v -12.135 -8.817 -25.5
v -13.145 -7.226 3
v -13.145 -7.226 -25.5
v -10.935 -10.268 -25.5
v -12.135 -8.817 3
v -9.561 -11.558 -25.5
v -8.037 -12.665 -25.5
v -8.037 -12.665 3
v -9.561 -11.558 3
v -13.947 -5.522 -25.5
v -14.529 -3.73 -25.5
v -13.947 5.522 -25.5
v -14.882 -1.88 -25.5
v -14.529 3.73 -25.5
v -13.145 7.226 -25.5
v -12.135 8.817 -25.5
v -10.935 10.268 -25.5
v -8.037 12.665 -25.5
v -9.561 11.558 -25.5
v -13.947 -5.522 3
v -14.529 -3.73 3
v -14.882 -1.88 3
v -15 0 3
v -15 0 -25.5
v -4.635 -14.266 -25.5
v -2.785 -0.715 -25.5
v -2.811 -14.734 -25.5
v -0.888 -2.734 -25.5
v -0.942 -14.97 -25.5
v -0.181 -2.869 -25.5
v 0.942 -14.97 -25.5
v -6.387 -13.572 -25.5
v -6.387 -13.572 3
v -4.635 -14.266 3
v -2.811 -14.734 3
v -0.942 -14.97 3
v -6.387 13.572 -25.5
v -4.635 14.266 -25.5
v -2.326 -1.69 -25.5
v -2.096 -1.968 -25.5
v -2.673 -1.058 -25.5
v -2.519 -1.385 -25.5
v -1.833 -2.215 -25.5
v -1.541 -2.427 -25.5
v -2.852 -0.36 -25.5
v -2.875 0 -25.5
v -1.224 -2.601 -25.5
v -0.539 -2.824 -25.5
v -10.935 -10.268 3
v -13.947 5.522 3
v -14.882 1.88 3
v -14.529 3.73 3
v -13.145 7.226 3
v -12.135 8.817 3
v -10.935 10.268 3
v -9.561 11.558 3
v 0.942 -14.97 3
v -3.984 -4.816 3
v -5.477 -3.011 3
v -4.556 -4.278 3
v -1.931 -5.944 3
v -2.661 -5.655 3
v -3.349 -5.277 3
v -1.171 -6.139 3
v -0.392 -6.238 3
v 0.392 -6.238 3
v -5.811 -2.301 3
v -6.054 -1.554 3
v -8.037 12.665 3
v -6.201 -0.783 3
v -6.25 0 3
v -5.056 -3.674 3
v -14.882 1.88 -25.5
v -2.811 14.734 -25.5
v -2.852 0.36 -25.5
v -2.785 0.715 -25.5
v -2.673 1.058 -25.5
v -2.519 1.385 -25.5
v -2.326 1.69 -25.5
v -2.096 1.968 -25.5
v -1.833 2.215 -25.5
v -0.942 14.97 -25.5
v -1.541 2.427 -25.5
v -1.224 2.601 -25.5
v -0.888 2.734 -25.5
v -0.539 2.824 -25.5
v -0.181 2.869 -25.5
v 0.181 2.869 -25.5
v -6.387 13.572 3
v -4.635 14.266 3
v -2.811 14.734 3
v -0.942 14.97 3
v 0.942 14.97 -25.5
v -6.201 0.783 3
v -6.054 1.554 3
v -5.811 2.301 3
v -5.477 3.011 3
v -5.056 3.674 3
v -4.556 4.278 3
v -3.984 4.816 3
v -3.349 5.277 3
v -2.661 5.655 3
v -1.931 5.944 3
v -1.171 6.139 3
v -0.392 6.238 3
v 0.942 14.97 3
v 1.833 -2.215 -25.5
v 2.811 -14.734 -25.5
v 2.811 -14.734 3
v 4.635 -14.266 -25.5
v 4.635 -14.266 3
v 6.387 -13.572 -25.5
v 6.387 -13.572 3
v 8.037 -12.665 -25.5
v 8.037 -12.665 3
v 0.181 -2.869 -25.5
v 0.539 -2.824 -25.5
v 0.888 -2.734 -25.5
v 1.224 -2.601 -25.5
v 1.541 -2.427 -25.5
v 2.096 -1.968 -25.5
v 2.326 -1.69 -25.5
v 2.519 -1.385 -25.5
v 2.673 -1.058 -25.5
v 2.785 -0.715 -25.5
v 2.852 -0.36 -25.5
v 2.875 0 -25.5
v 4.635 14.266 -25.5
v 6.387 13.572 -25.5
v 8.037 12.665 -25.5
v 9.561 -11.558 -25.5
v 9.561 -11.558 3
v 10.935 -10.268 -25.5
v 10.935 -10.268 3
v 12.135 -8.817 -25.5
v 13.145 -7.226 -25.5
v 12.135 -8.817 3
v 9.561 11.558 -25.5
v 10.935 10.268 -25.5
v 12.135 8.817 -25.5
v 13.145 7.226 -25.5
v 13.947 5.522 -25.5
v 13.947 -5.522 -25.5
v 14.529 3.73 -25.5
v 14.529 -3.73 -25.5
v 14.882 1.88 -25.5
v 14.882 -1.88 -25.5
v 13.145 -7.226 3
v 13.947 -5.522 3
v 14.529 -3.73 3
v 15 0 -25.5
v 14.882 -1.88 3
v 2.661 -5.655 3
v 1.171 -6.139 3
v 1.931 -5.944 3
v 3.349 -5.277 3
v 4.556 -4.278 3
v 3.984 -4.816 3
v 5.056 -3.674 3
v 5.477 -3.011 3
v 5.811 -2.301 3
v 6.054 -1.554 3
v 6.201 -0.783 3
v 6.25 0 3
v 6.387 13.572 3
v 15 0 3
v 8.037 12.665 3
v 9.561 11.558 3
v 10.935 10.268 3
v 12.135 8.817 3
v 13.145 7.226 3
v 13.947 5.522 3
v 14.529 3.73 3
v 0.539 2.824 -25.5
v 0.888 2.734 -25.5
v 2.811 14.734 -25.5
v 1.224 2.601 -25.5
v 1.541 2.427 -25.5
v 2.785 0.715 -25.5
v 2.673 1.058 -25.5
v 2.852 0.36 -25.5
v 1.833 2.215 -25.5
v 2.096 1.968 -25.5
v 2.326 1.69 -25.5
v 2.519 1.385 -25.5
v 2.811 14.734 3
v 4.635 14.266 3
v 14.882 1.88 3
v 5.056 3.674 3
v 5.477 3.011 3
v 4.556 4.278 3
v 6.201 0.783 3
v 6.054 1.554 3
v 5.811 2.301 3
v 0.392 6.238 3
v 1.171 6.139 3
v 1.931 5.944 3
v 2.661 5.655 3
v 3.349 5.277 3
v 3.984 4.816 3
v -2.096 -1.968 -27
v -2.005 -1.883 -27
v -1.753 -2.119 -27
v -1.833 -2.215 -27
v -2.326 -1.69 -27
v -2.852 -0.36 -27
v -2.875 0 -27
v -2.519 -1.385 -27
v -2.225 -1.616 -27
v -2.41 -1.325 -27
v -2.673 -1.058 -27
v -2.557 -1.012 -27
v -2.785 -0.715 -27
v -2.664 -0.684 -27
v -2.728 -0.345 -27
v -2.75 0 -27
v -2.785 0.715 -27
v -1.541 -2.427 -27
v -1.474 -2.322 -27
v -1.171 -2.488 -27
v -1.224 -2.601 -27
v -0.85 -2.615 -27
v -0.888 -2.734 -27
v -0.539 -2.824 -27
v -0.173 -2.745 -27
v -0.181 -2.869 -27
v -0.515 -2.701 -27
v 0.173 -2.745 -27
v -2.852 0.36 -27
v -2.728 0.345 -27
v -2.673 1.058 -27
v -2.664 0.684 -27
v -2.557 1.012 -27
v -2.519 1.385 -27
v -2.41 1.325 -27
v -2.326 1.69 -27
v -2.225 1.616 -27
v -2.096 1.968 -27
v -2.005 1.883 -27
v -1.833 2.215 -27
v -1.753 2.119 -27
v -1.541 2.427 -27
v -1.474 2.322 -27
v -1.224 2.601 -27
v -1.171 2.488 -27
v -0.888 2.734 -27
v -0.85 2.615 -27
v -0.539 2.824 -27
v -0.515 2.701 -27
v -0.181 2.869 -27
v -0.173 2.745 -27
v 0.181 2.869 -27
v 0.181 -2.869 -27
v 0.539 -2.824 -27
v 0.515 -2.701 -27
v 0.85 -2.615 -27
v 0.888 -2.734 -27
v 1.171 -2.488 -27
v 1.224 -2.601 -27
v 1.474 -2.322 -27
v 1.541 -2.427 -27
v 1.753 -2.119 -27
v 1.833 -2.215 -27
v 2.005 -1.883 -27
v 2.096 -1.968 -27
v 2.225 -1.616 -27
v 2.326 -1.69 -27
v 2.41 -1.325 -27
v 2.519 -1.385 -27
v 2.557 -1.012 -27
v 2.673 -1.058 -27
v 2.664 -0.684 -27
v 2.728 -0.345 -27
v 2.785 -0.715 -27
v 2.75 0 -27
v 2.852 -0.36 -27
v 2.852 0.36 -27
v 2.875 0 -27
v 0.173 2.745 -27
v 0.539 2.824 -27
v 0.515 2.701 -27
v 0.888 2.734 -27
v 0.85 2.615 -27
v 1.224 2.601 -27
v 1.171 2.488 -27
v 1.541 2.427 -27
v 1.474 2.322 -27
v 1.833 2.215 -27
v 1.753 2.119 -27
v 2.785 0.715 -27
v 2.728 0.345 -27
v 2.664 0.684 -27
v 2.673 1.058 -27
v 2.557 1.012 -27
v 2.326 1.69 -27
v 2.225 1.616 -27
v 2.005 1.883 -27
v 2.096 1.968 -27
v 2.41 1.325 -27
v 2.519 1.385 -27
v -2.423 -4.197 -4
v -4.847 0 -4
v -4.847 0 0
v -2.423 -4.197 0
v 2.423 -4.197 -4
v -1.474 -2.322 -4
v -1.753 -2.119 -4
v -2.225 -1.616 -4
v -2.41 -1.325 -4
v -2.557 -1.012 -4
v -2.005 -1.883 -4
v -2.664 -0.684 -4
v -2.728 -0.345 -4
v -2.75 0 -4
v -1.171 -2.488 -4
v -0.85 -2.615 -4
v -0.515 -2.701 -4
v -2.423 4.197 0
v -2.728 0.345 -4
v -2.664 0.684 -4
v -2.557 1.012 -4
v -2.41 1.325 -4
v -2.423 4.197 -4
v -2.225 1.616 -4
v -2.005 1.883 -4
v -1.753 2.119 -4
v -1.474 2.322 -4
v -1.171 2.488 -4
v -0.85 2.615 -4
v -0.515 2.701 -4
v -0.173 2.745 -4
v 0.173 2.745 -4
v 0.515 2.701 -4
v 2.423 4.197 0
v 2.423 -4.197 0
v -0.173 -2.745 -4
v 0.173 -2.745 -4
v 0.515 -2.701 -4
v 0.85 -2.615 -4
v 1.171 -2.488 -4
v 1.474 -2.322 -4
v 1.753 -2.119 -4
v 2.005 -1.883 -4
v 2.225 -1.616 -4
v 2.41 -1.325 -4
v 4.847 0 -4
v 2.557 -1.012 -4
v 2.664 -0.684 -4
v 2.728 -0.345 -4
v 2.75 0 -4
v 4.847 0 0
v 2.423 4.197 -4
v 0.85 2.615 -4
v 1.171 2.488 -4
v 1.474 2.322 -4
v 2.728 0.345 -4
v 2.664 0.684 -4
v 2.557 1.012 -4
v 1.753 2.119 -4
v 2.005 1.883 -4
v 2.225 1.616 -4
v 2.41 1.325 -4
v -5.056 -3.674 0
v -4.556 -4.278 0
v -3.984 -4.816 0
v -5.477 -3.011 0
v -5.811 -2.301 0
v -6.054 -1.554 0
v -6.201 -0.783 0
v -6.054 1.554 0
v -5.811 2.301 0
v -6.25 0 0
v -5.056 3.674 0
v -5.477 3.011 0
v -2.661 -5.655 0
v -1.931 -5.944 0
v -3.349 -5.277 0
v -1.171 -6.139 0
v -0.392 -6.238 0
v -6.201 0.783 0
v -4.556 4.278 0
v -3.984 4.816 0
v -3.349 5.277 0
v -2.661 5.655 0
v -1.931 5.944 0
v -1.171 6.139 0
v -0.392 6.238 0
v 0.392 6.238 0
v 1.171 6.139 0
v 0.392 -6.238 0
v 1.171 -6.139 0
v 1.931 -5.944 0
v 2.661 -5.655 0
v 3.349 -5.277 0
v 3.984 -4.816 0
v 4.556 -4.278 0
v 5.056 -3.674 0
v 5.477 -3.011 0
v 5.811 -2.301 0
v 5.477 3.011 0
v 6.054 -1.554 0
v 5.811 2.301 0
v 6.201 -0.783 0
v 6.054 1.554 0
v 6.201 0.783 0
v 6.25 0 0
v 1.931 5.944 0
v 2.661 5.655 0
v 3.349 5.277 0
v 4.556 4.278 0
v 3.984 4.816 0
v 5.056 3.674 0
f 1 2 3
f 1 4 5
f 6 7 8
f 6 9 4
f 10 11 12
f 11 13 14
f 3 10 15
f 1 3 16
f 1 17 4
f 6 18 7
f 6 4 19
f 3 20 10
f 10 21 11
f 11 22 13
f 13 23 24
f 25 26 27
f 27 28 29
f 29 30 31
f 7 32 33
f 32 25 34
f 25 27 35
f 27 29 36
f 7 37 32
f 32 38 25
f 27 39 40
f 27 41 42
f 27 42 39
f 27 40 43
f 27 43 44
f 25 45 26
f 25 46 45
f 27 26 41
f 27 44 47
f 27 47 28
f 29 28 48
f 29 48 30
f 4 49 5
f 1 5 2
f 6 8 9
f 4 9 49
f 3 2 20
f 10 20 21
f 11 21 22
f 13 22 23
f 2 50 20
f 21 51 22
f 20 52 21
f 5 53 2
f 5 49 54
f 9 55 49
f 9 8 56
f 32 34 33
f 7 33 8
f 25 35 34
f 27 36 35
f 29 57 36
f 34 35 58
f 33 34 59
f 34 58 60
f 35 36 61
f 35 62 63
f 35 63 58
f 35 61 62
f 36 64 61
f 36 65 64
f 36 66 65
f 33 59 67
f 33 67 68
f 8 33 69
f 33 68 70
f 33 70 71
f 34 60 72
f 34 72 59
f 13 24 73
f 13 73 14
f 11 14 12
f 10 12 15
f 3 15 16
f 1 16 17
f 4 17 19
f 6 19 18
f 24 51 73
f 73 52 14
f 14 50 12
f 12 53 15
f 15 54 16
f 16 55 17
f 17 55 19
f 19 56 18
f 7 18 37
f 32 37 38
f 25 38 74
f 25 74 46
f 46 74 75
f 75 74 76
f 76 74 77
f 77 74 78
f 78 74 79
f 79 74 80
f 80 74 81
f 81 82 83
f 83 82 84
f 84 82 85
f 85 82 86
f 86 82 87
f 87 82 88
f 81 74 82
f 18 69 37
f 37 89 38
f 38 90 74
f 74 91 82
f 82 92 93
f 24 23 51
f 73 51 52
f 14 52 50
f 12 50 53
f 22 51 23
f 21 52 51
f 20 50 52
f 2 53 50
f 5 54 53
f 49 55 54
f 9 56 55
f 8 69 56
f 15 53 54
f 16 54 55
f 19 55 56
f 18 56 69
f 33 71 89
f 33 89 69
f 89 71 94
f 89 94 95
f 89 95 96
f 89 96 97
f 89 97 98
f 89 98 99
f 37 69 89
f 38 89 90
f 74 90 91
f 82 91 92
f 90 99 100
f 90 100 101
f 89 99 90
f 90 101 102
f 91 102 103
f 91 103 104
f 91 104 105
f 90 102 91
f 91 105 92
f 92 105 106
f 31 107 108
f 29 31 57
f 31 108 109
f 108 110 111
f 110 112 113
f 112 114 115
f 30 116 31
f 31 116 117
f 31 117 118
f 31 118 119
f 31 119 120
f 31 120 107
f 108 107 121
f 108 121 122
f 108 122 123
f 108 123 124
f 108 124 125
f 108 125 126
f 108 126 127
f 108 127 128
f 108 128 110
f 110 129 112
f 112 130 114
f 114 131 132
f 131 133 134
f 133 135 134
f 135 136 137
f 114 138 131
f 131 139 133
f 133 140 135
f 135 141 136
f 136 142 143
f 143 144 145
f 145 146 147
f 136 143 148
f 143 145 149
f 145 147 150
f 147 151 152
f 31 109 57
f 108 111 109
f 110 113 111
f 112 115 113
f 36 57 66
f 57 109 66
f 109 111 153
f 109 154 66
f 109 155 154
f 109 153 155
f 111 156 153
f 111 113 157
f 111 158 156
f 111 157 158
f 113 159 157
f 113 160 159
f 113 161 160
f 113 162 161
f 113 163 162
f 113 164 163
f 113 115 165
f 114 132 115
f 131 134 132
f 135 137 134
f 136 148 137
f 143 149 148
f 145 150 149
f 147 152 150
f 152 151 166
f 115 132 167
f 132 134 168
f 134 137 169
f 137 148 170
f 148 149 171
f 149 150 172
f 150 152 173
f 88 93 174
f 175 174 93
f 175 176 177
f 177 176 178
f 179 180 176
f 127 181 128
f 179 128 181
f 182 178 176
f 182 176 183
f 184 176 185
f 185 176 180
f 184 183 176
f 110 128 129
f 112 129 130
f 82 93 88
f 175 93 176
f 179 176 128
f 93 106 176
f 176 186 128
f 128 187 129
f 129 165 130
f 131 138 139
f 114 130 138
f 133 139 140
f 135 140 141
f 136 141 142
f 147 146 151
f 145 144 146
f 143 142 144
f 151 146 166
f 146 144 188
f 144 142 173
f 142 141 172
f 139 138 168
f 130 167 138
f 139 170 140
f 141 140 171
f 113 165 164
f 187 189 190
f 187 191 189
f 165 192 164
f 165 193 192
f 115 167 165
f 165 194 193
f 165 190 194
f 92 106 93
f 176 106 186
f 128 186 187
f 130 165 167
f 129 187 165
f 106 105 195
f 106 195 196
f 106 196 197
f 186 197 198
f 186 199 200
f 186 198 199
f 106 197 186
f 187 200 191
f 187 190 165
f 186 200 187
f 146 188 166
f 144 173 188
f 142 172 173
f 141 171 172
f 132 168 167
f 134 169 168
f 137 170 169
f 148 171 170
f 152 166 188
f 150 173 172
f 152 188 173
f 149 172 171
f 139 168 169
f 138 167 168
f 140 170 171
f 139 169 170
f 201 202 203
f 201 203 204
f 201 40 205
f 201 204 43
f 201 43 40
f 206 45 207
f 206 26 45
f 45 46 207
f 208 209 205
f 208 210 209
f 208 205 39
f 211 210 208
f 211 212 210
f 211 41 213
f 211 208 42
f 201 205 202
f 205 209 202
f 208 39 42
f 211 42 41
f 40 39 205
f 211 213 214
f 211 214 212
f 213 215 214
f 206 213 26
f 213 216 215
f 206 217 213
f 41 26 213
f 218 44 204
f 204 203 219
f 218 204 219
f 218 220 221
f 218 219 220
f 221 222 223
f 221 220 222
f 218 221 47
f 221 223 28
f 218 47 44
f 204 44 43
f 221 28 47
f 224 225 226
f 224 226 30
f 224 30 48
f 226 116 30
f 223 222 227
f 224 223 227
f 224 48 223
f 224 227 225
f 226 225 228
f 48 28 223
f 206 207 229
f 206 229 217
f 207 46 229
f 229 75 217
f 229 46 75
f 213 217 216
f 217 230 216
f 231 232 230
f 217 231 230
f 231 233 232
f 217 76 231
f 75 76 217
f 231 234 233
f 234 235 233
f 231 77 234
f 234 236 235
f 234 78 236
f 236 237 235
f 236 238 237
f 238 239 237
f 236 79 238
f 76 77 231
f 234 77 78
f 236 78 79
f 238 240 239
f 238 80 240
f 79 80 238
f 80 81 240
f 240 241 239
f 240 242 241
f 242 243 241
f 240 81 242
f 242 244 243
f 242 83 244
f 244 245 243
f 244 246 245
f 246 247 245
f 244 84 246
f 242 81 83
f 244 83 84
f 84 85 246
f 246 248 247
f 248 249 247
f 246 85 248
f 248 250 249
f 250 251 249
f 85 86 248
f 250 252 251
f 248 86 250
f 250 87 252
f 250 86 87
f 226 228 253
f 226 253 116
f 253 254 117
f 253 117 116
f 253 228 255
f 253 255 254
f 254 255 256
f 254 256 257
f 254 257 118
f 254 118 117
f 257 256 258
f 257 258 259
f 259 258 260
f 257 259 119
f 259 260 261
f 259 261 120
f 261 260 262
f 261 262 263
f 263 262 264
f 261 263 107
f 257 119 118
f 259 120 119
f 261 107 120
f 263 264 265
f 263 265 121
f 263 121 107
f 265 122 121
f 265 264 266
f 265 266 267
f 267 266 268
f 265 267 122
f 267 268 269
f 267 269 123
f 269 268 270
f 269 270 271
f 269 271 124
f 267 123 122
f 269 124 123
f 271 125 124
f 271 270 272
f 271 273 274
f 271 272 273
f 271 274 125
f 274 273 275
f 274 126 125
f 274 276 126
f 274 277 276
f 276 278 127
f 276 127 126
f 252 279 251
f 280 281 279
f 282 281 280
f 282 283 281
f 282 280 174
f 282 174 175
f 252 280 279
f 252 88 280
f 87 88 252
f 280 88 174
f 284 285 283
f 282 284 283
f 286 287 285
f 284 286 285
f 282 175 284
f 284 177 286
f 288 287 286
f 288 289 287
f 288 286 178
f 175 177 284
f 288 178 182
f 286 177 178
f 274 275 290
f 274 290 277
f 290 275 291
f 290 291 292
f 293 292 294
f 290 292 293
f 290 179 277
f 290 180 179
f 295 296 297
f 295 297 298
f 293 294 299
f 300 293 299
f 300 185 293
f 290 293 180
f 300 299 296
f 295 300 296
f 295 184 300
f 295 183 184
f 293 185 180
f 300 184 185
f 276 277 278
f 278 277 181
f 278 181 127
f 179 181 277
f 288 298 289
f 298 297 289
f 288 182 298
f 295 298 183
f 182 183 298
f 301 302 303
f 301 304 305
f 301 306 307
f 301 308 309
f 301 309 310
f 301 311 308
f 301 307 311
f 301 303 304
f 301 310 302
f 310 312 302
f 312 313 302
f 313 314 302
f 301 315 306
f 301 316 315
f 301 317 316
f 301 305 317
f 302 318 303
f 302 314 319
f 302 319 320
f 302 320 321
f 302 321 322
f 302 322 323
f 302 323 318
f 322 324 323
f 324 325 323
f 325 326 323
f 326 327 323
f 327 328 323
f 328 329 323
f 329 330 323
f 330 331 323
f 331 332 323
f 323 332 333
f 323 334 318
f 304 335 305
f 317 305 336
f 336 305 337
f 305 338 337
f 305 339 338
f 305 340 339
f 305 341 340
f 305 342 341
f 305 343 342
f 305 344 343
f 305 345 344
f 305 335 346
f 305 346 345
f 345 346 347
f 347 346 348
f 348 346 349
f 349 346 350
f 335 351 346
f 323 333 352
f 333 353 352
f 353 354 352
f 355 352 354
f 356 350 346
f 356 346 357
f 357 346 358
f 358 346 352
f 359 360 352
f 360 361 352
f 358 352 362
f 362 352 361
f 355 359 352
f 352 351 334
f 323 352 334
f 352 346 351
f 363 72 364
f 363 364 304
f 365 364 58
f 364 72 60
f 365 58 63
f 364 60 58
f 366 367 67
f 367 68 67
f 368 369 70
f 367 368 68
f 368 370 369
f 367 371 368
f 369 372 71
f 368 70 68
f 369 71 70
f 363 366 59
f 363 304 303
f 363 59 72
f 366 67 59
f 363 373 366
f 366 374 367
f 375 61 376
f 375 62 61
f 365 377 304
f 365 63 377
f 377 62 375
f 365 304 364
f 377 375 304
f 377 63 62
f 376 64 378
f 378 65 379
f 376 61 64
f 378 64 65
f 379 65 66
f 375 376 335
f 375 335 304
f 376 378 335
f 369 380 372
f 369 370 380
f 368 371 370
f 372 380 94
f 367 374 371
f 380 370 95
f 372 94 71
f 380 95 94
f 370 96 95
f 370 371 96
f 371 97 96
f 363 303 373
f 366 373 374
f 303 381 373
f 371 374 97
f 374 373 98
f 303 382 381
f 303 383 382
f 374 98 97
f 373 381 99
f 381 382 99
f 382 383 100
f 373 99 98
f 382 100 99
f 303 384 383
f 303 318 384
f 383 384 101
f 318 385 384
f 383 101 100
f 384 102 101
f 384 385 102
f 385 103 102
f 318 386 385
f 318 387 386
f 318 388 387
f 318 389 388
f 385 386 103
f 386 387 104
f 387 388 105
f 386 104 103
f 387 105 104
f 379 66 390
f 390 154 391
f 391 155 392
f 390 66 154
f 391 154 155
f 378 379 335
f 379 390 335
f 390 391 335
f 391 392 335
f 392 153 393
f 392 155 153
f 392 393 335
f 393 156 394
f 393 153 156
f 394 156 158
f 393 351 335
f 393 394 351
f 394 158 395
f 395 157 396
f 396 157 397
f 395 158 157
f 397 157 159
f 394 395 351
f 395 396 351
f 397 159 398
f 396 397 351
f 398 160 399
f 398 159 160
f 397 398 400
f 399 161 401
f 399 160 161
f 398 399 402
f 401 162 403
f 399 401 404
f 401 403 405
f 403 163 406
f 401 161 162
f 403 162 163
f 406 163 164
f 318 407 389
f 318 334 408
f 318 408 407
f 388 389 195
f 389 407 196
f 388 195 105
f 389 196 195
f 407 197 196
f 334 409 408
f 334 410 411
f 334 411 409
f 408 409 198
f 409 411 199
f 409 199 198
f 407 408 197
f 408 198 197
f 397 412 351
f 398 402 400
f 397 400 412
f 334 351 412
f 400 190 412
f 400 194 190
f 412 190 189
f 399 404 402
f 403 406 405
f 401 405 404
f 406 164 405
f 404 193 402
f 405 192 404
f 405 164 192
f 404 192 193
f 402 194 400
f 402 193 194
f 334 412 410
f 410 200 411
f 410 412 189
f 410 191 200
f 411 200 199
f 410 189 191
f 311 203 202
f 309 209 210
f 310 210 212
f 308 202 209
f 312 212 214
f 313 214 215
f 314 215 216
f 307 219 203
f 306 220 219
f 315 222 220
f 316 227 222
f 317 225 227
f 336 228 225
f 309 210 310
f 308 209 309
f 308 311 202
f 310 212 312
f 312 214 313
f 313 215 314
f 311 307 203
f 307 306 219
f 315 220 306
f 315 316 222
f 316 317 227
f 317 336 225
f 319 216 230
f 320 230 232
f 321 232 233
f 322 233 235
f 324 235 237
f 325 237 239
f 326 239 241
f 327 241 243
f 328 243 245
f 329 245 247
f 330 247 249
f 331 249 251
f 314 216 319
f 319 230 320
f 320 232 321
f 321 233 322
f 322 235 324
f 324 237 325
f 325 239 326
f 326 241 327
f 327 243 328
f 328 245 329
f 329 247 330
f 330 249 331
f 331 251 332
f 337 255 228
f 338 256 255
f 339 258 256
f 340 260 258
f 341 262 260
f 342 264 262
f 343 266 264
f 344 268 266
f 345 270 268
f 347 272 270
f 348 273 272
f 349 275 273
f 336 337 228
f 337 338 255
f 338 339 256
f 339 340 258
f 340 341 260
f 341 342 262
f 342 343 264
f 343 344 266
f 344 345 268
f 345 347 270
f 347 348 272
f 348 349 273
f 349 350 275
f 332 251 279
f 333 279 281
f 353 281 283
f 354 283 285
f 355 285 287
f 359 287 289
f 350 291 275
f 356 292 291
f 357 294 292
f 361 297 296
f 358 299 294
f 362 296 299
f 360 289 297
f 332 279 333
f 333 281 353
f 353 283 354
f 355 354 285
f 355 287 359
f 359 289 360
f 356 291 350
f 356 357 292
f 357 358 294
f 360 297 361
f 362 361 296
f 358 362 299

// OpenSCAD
$fn = 50;

difference() {
	union() {
		translate(v = [0, 0, -25.5]) {
			cylinder(h = 28.5, r = 15.0);
		}
		#translate(v = [0, 0, -27.0]) {
			cylinder(h = 27, r = 2.875);
		}
	}
	union() {
		translate(v = [0, 0, 0]) {
			rotate(a = [0, 0, 0]) {
				difference() {
					union() {
						translate(v = [0, 0, -4]) {
							linear_extrude(height = 4) {
								polygon(points = [[4.8468, 0.0], [2.4234000000000004, 4.197451927062417], [-2.423399999999999, 4.197451927062417], [-4.8468, 5.935618106107392e-16], [-2.423400000000002, -4.197451927062416], [2.423399999999997, -4.197451927062419]]);
							}
						}
					}
					union();
				}
			}
		}
		#cylinder(h = 3, r = 6.25);
		#translate(v = [0, 0, -100.0]) {
			cylinder(h = 200, r = 2.75);
		}
	}
}
